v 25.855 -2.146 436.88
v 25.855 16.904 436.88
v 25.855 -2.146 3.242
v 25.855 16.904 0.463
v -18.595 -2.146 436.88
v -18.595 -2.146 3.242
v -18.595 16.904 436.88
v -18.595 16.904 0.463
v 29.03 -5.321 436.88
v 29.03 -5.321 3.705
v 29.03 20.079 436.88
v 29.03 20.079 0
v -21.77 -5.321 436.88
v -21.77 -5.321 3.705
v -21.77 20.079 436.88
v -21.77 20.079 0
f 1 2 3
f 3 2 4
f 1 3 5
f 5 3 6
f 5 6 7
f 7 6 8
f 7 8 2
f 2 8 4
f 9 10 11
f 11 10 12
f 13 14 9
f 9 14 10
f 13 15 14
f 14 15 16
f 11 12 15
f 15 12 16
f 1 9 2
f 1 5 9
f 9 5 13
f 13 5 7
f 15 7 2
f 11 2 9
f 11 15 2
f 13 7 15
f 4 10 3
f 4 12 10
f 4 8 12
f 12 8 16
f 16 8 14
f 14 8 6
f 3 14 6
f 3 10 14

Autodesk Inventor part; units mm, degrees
ref_plane "YZ Plane" through (0, 0, 0) normal (1, 0, 0) x (0, 1, 0)
ref_plane "XZ Plane" through (0, 0, 0) normal (0, 1, 0) x (-1, 0, 0)
ref_plane "XY Plane" through (0, 0, 0) normal (0, 0, 1) x (1, 0, 0)
sketch "Sketch1" plane through (0, 0, 0) normal (0, 0, 1) x (1, 0, 0)
  line L0 (-21.7703, 20.0792) -> (29.0297, 20.0792)
  line L1 (29.0297, 20.0792) -> (29.0297, -5.3208)
  line L2 (29.0297, -5.3208) -> (-21.7703, -5.3208)
  line L3 (-21.7703, -5.3208) -> (-21.7703, 20.0792)
  dimension "d0" = 25.4
  dimension "d1" = 50.8
extrude "Extrusion1" add sketch "Sketch1" along normal blind 436.88
shell "Shell1" thickness 3.175 removed faces 2 at (-4.8369, 11.6125, 436.88) at (-4.8369, 11.6125, 0)
draft "FaceDraft1" angle 8.3 pull direction (0, -1, 0) faces at (-3.7786, 19.0209, 0) fixed edges at (3.6297, 20.0792, 0)
properties part number "FE-00013-05"
